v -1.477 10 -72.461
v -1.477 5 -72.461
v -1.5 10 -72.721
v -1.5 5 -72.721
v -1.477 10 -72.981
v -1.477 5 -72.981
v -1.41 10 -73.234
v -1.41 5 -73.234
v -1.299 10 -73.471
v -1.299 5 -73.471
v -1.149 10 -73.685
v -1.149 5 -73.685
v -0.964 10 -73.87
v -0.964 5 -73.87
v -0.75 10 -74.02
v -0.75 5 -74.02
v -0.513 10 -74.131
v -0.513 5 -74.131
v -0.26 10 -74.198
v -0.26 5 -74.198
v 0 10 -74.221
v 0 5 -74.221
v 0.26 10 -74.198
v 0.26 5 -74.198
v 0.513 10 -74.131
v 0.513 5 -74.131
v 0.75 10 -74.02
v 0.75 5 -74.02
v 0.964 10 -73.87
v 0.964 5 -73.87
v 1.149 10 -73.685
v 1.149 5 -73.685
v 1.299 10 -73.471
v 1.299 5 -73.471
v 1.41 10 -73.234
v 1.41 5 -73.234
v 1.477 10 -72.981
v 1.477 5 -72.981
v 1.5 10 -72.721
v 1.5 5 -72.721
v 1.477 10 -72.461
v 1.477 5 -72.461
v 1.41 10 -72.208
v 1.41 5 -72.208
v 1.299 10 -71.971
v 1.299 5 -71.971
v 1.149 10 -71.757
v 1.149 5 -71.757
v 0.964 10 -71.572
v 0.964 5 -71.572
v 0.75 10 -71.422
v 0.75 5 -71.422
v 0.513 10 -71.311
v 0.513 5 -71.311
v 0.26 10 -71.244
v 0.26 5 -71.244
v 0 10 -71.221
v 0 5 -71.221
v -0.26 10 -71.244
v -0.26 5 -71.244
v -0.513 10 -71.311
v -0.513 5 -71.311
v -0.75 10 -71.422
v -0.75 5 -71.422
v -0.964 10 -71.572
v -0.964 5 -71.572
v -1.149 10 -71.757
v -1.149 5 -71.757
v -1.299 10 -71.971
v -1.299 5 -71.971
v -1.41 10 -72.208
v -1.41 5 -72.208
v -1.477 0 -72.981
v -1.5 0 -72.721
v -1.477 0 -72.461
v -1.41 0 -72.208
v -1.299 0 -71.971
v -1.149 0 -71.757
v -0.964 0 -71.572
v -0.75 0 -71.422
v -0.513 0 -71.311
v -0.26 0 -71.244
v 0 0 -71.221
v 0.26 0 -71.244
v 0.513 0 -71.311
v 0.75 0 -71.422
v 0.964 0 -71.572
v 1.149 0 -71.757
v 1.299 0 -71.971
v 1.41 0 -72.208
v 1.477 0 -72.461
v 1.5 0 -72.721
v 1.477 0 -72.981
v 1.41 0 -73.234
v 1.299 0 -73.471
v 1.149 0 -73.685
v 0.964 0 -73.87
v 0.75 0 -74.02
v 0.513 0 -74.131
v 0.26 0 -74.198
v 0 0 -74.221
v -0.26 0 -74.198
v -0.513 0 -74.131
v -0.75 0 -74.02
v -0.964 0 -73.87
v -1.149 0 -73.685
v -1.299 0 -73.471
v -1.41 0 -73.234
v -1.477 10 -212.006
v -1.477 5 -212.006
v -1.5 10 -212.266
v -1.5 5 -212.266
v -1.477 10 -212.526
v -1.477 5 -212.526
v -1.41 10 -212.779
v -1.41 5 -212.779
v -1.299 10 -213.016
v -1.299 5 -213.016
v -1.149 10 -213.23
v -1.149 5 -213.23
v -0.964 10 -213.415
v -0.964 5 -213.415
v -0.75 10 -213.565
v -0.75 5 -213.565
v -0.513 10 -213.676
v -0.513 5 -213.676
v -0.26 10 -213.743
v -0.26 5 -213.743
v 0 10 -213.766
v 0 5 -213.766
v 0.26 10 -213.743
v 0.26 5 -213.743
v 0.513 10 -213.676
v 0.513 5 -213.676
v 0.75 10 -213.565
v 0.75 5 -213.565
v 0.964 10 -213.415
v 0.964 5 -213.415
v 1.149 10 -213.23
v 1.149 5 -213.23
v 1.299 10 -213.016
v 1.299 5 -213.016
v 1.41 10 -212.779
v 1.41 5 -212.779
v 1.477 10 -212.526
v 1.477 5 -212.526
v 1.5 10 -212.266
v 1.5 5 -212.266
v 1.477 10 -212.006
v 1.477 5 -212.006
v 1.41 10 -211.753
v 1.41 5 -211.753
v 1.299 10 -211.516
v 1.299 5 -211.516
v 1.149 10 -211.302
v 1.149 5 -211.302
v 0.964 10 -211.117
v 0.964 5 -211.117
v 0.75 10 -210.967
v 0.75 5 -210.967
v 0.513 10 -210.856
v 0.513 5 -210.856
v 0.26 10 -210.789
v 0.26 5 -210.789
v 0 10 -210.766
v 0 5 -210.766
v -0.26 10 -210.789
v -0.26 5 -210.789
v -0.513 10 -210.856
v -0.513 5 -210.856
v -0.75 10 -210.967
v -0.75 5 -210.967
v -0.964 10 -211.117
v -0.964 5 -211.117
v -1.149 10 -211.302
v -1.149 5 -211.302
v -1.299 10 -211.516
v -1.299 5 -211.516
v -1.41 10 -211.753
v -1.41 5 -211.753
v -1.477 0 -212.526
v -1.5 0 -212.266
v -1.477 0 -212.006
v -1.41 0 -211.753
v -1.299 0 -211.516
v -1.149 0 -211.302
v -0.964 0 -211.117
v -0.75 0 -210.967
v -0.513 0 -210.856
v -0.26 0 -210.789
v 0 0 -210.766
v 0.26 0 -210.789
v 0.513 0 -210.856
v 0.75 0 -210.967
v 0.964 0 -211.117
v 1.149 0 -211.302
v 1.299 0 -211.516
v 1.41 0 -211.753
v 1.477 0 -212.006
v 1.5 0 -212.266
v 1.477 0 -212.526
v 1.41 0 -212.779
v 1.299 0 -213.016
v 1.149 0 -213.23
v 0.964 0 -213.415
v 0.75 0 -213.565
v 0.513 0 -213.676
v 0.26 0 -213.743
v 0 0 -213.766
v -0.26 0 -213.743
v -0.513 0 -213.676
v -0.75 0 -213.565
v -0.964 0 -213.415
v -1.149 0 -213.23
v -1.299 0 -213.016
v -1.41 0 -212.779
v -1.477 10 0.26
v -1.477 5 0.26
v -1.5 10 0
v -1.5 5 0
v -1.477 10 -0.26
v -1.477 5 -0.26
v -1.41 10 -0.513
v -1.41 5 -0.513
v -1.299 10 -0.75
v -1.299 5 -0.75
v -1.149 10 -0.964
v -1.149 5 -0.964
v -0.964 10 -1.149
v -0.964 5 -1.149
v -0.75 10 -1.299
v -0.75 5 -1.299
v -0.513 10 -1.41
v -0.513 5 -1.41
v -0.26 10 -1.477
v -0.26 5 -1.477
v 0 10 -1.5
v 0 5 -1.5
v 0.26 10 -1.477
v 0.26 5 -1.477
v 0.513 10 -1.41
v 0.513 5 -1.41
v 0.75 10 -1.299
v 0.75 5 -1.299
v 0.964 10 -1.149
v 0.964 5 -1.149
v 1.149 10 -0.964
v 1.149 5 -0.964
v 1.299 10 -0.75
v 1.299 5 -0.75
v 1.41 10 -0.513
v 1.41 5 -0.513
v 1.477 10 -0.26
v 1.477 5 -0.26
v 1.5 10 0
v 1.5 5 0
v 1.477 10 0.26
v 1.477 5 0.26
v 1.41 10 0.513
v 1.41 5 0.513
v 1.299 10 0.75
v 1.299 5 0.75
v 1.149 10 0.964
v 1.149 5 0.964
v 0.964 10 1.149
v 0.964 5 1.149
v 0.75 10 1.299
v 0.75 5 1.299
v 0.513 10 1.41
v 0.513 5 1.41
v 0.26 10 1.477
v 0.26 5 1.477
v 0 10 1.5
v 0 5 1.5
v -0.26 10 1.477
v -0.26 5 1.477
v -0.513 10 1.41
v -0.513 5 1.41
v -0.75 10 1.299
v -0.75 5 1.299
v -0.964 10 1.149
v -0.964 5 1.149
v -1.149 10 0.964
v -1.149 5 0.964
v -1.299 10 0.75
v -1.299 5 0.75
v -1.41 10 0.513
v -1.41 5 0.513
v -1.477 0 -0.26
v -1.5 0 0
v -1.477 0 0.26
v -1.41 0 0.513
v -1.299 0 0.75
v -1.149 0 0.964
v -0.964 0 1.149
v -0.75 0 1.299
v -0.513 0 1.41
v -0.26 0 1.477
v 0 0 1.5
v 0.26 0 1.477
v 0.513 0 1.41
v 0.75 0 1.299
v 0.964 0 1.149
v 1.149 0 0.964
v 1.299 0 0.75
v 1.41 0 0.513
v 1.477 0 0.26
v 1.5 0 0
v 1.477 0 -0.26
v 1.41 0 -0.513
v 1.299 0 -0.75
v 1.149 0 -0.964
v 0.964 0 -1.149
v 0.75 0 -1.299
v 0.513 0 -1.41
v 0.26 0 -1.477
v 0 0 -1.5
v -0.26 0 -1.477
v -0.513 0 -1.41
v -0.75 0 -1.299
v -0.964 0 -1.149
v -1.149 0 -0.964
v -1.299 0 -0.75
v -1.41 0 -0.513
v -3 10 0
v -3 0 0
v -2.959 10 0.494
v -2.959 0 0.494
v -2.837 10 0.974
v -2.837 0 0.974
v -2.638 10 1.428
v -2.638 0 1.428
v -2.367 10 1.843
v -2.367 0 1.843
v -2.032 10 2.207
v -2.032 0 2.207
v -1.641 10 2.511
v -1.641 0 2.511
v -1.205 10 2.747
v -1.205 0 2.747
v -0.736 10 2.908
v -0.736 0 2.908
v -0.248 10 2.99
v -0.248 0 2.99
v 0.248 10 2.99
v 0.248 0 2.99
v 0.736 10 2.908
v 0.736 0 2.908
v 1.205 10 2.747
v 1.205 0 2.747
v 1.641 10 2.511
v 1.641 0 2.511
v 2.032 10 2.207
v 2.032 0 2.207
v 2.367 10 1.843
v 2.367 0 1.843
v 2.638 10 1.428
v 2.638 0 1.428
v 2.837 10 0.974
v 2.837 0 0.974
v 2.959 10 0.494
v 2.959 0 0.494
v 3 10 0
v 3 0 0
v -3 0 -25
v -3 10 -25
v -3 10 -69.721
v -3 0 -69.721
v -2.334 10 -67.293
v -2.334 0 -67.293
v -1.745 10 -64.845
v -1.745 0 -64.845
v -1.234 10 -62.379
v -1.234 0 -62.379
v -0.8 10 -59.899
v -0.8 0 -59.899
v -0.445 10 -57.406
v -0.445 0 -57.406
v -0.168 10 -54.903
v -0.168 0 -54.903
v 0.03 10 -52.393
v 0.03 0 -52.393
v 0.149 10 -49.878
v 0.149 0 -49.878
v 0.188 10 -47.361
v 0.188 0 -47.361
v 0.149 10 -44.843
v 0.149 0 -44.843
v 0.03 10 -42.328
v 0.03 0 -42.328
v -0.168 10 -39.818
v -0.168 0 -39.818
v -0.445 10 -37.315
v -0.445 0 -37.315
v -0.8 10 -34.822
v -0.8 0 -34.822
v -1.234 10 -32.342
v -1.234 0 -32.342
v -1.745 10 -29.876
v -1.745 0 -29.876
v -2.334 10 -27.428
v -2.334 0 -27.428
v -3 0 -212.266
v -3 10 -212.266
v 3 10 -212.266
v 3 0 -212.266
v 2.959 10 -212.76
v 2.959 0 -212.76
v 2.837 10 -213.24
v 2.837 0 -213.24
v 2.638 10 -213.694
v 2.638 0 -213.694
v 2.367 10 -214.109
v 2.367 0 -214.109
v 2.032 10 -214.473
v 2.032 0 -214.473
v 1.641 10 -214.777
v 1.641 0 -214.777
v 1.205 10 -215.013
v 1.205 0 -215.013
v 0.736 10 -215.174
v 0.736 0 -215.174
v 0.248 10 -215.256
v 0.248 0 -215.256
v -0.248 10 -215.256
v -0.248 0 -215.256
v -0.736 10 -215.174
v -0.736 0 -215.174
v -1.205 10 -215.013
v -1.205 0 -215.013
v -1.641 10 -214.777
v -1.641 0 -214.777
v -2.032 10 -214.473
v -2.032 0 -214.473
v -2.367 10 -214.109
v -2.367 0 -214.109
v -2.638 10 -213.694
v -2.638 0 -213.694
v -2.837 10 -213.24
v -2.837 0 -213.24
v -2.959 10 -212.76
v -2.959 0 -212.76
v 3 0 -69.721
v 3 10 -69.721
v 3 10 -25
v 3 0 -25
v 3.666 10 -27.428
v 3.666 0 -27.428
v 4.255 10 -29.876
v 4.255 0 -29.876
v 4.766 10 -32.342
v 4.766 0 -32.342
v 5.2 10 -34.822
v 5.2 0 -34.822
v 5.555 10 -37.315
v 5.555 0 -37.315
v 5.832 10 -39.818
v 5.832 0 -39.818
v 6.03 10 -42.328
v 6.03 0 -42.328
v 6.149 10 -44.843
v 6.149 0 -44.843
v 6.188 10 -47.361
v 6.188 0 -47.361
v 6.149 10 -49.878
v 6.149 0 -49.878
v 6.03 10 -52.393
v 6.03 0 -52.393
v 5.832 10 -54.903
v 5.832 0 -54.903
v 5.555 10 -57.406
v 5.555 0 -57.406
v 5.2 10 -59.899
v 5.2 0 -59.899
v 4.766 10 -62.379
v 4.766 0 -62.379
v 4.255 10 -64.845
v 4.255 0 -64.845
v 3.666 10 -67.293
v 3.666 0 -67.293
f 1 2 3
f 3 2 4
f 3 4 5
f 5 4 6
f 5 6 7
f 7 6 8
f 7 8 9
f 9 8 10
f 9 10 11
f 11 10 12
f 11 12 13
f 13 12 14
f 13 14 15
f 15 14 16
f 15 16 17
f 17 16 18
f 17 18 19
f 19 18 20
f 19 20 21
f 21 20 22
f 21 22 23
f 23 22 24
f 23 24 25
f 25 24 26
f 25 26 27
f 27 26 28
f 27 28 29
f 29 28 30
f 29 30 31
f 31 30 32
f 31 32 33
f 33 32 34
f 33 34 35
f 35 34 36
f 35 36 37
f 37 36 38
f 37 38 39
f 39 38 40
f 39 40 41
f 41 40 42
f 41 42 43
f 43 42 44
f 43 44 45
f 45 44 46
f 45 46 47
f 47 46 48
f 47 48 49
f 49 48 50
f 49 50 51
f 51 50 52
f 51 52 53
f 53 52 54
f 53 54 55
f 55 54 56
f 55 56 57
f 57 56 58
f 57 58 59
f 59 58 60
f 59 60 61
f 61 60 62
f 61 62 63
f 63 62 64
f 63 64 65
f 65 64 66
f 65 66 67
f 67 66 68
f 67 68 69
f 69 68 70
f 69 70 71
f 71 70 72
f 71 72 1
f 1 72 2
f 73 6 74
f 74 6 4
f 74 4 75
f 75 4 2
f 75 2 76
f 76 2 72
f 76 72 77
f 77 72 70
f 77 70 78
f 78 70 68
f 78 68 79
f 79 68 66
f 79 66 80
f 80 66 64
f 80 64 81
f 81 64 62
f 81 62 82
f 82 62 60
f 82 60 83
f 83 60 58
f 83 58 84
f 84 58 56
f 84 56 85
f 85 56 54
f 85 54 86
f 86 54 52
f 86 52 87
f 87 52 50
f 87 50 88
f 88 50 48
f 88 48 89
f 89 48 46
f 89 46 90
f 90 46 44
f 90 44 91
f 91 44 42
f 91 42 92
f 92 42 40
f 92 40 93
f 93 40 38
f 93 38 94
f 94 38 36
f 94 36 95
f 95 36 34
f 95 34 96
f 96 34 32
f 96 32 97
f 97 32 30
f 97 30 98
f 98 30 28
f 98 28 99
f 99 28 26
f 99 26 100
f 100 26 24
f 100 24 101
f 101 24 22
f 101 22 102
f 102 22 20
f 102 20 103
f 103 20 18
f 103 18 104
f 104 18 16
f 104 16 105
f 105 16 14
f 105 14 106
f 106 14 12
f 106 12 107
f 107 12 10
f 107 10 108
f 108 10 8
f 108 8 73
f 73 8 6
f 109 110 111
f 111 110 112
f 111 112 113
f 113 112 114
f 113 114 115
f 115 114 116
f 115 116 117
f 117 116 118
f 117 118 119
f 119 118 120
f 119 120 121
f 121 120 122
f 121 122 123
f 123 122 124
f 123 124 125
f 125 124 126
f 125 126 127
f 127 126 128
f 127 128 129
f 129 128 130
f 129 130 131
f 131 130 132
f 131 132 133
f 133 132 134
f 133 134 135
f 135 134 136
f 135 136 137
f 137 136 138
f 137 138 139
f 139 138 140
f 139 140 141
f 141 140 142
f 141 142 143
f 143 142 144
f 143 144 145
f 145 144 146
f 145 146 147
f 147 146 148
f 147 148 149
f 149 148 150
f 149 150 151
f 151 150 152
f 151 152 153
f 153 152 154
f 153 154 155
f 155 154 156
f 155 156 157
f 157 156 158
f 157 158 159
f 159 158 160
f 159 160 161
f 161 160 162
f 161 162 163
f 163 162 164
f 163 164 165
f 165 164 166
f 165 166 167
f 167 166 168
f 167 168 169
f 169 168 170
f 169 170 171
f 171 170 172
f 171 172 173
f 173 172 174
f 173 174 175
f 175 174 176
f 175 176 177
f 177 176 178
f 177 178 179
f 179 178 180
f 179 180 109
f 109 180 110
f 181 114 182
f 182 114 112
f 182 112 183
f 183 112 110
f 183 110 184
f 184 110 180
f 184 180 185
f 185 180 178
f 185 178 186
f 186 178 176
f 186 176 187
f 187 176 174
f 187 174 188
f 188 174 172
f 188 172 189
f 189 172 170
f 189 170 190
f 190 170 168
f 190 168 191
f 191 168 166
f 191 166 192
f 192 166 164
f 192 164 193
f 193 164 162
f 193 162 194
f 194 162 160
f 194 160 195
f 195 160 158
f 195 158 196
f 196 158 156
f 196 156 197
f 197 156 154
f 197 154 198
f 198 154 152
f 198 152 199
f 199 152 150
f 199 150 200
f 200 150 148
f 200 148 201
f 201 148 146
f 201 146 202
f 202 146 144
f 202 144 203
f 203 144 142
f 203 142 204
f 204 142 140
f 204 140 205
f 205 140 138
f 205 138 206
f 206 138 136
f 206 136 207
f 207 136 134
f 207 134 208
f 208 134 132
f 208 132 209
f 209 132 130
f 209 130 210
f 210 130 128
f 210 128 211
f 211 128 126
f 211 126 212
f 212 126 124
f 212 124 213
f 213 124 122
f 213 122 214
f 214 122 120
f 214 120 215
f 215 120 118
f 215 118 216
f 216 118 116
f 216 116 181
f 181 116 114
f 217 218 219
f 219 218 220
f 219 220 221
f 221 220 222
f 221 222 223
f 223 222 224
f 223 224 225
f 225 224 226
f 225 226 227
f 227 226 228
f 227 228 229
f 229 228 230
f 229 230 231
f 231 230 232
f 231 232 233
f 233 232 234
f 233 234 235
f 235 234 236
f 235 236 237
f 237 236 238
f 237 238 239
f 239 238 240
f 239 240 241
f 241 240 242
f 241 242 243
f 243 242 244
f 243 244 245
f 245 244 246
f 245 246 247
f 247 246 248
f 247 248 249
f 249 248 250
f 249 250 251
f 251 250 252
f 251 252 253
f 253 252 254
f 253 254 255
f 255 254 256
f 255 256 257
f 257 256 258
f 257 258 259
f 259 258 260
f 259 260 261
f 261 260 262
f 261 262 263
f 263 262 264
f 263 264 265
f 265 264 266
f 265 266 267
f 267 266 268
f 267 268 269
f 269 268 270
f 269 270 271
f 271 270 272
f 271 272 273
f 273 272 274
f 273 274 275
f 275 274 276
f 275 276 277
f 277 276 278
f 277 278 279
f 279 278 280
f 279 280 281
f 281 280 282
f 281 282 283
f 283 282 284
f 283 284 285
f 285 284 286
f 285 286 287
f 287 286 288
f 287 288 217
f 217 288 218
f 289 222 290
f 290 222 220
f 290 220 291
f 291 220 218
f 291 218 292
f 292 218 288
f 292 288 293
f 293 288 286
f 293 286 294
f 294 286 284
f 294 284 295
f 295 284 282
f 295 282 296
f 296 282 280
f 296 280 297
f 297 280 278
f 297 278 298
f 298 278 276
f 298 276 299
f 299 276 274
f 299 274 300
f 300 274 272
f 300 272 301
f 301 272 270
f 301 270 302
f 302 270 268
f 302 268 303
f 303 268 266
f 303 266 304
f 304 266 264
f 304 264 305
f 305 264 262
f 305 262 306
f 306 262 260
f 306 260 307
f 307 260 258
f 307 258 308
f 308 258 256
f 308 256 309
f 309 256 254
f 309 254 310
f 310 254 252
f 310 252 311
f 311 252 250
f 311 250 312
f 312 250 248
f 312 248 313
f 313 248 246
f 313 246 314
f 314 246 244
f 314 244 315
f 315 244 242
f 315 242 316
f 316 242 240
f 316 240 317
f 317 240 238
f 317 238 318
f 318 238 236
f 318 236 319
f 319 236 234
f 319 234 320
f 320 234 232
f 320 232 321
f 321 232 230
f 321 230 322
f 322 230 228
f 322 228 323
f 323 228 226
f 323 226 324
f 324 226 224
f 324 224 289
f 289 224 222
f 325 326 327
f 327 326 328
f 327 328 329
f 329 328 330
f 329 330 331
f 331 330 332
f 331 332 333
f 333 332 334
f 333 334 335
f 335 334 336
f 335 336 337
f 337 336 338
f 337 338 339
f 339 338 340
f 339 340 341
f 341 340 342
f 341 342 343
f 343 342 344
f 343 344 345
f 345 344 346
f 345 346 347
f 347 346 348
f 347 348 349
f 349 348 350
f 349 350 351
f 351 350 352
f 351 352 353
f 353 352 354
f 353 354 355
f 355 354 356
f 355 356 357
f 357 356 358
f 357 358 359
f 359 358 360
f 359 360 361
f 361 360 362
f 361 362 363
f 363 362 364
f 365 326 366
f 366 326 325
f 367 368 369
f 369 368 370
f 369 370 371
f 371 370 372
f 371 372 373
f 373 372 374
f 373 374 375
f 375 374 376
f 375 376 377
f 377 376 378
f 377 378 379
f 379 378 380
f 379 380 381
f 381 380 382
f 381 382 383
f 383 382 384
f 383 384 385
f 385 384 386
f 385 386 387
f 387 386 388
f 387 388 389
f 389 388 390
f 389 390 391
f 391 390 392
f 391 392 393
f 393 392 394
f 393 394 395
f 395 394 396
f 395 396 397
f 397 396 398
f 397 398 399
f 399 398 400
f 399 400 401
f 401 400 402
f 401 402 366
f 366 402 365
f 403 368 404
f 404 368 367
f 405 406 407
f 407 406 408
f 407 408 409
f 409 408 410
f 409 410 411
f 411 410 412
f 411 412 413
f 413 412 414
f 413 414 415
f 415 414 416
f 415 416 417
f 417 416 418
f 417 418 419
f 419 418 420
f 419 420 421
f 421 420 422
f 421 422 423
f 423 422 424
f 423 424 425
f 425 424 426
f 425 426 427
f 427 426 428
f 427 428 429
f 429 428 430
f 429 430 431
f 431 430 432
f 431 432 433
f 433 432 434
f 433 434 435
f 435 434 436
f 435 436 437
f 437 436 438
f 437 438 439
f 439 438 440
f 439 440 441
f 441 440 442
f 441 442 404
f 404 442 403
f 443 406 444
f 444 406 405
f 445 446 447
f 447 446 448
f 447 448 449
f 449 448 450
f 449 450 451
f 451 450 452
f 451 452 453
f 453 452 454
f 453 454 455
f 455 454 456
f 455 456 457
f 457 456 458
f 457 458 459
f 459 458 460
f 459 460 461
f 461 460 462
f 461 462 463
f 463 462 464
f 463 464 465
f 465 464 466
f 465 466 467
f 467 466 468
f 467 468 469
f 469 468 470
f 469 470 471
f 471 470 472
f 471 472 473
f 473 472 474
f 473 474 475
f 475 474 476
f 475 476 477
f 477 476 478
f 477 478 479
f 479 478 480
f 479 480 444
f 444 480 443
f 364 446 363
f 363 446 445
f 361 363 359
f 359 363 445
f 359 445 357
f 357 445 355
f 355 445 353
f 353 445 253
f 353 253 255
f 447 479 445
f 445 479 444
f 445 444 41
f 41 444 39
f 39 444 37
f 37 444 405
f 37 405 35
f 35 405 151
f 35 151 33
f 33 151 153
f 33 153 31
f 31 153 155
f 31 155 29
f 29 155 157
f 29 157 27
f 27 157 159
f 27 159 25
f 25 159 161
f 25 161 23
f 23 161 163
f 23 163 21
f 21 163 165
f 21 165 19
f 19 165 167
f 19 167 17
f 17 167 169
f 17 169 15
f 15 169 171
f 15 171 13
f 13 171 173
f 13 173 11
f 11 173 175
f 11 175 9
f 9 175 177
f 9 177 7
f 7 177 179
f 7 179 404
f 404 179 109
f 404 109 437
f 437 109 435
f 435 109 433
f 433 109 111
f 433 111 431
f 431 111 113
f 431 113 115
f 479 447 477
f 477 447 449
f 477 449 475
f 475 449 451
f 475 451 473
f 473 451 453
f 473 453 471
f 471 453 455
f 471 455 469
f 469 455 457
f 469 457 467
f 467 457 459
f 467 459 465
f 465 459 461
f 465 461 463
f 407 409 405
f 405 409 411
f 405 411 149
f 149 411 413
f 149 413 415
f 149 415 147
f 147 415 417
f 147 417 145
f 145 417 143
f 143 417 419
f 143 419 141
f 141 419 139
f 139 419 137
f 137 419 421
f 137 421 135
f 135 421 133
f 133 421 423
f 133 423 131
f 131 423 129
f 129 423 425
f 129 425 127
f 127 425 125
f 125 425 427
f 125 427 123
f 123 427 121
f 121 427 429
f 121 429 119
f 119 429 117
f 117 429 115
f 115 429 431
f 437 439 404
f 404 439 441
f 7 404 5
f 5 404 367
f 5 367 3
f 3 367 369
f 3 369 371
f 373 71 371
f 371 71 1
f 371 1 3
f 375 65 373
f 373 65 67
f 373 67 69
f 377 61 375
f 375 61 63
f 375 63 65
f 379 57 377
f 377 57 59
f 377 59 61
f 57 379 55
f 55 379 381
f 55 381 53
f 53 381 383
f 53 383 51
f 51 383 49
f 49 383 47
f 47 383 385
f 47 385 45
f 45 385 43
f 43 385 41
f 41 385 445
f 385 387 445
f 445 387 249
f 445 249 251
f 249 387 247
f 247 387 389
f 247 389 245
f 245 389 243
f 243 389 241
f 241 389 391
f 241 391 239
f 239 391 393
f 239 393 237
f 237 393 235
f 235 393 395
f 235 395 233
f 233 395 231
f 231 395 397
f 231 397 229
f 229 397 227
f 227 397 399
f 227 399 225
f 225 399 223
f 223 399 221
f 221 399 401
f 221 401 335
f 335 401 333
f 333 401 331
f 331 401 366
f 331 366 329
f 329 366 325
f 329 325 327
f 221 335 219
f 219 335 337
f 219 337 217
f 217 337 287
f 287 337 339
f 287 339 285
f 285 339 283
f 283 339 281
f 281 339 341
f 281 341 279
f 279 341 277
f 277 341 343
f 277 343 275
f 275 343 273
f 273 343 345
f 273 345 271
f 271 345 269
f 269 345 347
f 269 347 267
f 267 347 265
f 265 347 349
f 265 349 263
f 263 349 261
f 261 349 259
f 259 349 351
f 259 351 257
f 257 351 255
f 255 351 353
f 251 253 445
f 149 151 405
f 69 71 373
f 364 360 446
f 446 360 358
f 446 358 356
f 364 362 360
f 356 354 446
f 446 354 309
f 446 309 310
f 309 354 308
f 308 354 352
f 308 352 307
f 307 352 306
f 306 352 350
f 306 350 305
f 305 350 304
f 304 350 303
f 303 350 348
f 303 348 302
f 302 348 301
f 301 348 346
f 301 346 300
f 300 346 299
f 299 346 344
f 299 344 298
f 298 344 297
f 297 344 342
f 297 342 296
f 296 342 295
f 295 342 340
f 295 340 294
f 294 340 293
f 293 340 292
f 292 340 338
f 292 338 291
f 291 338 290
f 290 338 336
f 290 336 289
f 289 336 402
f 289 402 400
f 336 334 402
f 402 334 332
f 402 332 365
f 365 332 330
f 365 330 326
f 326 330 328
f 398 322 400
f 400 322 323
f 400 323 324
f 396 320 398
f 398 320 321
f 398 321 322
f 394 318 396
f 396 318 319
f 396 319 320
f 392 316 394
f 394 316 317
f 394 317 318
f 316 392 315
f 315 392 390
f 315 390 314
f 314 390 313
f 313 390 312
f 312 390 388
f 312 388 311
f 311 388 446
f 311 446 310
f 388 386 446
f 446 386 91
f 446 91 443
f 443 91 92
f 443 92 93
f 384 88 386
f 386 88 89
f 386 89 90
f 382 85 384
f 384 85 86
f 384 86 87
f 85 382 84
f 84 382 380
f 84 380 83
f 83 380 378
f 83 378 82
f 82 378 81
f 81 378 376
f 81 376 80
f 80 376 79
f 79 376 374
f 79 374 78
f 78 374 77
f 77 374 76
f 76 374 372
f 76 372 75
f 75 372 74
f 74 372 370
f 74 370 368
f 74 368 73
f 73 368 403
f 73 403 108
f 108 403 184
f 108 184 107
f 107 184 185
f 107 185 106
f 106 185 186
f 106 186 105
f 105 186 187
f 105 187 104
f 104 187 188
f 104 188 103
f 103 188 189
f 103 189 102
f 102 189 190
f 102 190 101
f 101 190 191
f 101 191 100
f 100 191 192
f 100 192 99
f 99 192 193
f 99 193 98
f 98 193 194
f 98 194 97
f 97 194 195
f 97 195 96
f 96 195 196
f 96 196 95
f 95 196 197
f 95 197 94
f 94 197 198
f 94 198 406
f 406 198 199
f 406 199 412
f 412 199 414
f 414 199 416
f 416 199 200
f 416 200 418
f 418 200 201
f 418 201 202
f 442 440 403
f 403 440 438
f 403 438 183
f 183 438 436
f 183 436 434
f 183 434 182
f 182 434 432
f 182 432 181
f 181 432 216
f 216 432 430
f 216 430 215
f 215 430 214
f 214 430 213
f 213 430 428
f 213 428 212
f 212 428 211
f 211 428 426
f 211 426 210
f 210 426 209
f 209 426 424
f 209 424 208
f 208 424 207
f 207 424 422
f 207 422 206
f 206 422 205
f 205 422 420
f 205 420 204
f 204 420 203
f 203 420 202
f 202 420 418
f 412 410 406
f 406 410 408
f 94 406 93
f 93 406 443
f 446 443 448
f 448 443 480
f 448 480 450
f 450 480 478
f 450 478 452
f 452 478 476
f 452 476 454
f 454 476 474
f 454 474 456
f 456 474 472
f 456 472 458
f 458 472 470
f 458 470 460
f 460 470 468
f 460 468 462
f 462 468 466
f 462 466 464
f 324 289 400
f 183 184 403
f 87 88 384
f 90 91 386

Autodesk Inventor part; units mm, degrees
ref_plane "YZ Plane" through (0, 0, 0) normal (1, 0, 0) x (0, 1, 0)
ref_plane "XZ Plane" through (0, 0, 0) normal (0, 1, 0) x (-1, 0, 0)
ref_plane "XY Plane" through (0, 0, 0) normal (0, 0, 1) x (1, 0, 0)
sketch "Sketch1" plane through (0, 0, 0) normal (0, 1, 0) x (-1, 0, 0)
  line L0 (0, 0) -> (0, -212.266) construction
  line L1 (-3, 0) -> (-3, -212.266)
  line L2 (3, -212.266) -> (3, 0)
  arc A0 (3, 0) -> (-3, 0) centre (0, 0) ccw
  arc A1 (-3, -212.266) -> (3, -212.266) centre (0, -212.266) ccw
  circle A2 centre (0, 0) radius 1.5
  circle A3 centre (0, -212.266) radius 1.5
  circle A4 centre (0, -72.721) radius 1.5
  arc A5 (3, -25) -> (3, -69.721) centre (79.8115, -47.3605) ccw
  arc A6 (-3, -25) -> (-3, -69.721) centre (73.8115, -47.3605) ccw
  point P0 (0, -106.133)
  dimension "d0" = 6
  dimension "d1" = 212.266
  dimension "d2" = 3
  dimension "d3" = 3
  dimension "d10" = 3
  dimension "d11" = 72.721
  dimension "d12" = 80
  dimension "d13" = 80
  dimension "d14" = 3
  dimension "d15" = 25
extrude "Extrusion1" add sketch "Sketch1" along normal blind 10 contours A0 L2 A5 A1 L1 | L1 A6
